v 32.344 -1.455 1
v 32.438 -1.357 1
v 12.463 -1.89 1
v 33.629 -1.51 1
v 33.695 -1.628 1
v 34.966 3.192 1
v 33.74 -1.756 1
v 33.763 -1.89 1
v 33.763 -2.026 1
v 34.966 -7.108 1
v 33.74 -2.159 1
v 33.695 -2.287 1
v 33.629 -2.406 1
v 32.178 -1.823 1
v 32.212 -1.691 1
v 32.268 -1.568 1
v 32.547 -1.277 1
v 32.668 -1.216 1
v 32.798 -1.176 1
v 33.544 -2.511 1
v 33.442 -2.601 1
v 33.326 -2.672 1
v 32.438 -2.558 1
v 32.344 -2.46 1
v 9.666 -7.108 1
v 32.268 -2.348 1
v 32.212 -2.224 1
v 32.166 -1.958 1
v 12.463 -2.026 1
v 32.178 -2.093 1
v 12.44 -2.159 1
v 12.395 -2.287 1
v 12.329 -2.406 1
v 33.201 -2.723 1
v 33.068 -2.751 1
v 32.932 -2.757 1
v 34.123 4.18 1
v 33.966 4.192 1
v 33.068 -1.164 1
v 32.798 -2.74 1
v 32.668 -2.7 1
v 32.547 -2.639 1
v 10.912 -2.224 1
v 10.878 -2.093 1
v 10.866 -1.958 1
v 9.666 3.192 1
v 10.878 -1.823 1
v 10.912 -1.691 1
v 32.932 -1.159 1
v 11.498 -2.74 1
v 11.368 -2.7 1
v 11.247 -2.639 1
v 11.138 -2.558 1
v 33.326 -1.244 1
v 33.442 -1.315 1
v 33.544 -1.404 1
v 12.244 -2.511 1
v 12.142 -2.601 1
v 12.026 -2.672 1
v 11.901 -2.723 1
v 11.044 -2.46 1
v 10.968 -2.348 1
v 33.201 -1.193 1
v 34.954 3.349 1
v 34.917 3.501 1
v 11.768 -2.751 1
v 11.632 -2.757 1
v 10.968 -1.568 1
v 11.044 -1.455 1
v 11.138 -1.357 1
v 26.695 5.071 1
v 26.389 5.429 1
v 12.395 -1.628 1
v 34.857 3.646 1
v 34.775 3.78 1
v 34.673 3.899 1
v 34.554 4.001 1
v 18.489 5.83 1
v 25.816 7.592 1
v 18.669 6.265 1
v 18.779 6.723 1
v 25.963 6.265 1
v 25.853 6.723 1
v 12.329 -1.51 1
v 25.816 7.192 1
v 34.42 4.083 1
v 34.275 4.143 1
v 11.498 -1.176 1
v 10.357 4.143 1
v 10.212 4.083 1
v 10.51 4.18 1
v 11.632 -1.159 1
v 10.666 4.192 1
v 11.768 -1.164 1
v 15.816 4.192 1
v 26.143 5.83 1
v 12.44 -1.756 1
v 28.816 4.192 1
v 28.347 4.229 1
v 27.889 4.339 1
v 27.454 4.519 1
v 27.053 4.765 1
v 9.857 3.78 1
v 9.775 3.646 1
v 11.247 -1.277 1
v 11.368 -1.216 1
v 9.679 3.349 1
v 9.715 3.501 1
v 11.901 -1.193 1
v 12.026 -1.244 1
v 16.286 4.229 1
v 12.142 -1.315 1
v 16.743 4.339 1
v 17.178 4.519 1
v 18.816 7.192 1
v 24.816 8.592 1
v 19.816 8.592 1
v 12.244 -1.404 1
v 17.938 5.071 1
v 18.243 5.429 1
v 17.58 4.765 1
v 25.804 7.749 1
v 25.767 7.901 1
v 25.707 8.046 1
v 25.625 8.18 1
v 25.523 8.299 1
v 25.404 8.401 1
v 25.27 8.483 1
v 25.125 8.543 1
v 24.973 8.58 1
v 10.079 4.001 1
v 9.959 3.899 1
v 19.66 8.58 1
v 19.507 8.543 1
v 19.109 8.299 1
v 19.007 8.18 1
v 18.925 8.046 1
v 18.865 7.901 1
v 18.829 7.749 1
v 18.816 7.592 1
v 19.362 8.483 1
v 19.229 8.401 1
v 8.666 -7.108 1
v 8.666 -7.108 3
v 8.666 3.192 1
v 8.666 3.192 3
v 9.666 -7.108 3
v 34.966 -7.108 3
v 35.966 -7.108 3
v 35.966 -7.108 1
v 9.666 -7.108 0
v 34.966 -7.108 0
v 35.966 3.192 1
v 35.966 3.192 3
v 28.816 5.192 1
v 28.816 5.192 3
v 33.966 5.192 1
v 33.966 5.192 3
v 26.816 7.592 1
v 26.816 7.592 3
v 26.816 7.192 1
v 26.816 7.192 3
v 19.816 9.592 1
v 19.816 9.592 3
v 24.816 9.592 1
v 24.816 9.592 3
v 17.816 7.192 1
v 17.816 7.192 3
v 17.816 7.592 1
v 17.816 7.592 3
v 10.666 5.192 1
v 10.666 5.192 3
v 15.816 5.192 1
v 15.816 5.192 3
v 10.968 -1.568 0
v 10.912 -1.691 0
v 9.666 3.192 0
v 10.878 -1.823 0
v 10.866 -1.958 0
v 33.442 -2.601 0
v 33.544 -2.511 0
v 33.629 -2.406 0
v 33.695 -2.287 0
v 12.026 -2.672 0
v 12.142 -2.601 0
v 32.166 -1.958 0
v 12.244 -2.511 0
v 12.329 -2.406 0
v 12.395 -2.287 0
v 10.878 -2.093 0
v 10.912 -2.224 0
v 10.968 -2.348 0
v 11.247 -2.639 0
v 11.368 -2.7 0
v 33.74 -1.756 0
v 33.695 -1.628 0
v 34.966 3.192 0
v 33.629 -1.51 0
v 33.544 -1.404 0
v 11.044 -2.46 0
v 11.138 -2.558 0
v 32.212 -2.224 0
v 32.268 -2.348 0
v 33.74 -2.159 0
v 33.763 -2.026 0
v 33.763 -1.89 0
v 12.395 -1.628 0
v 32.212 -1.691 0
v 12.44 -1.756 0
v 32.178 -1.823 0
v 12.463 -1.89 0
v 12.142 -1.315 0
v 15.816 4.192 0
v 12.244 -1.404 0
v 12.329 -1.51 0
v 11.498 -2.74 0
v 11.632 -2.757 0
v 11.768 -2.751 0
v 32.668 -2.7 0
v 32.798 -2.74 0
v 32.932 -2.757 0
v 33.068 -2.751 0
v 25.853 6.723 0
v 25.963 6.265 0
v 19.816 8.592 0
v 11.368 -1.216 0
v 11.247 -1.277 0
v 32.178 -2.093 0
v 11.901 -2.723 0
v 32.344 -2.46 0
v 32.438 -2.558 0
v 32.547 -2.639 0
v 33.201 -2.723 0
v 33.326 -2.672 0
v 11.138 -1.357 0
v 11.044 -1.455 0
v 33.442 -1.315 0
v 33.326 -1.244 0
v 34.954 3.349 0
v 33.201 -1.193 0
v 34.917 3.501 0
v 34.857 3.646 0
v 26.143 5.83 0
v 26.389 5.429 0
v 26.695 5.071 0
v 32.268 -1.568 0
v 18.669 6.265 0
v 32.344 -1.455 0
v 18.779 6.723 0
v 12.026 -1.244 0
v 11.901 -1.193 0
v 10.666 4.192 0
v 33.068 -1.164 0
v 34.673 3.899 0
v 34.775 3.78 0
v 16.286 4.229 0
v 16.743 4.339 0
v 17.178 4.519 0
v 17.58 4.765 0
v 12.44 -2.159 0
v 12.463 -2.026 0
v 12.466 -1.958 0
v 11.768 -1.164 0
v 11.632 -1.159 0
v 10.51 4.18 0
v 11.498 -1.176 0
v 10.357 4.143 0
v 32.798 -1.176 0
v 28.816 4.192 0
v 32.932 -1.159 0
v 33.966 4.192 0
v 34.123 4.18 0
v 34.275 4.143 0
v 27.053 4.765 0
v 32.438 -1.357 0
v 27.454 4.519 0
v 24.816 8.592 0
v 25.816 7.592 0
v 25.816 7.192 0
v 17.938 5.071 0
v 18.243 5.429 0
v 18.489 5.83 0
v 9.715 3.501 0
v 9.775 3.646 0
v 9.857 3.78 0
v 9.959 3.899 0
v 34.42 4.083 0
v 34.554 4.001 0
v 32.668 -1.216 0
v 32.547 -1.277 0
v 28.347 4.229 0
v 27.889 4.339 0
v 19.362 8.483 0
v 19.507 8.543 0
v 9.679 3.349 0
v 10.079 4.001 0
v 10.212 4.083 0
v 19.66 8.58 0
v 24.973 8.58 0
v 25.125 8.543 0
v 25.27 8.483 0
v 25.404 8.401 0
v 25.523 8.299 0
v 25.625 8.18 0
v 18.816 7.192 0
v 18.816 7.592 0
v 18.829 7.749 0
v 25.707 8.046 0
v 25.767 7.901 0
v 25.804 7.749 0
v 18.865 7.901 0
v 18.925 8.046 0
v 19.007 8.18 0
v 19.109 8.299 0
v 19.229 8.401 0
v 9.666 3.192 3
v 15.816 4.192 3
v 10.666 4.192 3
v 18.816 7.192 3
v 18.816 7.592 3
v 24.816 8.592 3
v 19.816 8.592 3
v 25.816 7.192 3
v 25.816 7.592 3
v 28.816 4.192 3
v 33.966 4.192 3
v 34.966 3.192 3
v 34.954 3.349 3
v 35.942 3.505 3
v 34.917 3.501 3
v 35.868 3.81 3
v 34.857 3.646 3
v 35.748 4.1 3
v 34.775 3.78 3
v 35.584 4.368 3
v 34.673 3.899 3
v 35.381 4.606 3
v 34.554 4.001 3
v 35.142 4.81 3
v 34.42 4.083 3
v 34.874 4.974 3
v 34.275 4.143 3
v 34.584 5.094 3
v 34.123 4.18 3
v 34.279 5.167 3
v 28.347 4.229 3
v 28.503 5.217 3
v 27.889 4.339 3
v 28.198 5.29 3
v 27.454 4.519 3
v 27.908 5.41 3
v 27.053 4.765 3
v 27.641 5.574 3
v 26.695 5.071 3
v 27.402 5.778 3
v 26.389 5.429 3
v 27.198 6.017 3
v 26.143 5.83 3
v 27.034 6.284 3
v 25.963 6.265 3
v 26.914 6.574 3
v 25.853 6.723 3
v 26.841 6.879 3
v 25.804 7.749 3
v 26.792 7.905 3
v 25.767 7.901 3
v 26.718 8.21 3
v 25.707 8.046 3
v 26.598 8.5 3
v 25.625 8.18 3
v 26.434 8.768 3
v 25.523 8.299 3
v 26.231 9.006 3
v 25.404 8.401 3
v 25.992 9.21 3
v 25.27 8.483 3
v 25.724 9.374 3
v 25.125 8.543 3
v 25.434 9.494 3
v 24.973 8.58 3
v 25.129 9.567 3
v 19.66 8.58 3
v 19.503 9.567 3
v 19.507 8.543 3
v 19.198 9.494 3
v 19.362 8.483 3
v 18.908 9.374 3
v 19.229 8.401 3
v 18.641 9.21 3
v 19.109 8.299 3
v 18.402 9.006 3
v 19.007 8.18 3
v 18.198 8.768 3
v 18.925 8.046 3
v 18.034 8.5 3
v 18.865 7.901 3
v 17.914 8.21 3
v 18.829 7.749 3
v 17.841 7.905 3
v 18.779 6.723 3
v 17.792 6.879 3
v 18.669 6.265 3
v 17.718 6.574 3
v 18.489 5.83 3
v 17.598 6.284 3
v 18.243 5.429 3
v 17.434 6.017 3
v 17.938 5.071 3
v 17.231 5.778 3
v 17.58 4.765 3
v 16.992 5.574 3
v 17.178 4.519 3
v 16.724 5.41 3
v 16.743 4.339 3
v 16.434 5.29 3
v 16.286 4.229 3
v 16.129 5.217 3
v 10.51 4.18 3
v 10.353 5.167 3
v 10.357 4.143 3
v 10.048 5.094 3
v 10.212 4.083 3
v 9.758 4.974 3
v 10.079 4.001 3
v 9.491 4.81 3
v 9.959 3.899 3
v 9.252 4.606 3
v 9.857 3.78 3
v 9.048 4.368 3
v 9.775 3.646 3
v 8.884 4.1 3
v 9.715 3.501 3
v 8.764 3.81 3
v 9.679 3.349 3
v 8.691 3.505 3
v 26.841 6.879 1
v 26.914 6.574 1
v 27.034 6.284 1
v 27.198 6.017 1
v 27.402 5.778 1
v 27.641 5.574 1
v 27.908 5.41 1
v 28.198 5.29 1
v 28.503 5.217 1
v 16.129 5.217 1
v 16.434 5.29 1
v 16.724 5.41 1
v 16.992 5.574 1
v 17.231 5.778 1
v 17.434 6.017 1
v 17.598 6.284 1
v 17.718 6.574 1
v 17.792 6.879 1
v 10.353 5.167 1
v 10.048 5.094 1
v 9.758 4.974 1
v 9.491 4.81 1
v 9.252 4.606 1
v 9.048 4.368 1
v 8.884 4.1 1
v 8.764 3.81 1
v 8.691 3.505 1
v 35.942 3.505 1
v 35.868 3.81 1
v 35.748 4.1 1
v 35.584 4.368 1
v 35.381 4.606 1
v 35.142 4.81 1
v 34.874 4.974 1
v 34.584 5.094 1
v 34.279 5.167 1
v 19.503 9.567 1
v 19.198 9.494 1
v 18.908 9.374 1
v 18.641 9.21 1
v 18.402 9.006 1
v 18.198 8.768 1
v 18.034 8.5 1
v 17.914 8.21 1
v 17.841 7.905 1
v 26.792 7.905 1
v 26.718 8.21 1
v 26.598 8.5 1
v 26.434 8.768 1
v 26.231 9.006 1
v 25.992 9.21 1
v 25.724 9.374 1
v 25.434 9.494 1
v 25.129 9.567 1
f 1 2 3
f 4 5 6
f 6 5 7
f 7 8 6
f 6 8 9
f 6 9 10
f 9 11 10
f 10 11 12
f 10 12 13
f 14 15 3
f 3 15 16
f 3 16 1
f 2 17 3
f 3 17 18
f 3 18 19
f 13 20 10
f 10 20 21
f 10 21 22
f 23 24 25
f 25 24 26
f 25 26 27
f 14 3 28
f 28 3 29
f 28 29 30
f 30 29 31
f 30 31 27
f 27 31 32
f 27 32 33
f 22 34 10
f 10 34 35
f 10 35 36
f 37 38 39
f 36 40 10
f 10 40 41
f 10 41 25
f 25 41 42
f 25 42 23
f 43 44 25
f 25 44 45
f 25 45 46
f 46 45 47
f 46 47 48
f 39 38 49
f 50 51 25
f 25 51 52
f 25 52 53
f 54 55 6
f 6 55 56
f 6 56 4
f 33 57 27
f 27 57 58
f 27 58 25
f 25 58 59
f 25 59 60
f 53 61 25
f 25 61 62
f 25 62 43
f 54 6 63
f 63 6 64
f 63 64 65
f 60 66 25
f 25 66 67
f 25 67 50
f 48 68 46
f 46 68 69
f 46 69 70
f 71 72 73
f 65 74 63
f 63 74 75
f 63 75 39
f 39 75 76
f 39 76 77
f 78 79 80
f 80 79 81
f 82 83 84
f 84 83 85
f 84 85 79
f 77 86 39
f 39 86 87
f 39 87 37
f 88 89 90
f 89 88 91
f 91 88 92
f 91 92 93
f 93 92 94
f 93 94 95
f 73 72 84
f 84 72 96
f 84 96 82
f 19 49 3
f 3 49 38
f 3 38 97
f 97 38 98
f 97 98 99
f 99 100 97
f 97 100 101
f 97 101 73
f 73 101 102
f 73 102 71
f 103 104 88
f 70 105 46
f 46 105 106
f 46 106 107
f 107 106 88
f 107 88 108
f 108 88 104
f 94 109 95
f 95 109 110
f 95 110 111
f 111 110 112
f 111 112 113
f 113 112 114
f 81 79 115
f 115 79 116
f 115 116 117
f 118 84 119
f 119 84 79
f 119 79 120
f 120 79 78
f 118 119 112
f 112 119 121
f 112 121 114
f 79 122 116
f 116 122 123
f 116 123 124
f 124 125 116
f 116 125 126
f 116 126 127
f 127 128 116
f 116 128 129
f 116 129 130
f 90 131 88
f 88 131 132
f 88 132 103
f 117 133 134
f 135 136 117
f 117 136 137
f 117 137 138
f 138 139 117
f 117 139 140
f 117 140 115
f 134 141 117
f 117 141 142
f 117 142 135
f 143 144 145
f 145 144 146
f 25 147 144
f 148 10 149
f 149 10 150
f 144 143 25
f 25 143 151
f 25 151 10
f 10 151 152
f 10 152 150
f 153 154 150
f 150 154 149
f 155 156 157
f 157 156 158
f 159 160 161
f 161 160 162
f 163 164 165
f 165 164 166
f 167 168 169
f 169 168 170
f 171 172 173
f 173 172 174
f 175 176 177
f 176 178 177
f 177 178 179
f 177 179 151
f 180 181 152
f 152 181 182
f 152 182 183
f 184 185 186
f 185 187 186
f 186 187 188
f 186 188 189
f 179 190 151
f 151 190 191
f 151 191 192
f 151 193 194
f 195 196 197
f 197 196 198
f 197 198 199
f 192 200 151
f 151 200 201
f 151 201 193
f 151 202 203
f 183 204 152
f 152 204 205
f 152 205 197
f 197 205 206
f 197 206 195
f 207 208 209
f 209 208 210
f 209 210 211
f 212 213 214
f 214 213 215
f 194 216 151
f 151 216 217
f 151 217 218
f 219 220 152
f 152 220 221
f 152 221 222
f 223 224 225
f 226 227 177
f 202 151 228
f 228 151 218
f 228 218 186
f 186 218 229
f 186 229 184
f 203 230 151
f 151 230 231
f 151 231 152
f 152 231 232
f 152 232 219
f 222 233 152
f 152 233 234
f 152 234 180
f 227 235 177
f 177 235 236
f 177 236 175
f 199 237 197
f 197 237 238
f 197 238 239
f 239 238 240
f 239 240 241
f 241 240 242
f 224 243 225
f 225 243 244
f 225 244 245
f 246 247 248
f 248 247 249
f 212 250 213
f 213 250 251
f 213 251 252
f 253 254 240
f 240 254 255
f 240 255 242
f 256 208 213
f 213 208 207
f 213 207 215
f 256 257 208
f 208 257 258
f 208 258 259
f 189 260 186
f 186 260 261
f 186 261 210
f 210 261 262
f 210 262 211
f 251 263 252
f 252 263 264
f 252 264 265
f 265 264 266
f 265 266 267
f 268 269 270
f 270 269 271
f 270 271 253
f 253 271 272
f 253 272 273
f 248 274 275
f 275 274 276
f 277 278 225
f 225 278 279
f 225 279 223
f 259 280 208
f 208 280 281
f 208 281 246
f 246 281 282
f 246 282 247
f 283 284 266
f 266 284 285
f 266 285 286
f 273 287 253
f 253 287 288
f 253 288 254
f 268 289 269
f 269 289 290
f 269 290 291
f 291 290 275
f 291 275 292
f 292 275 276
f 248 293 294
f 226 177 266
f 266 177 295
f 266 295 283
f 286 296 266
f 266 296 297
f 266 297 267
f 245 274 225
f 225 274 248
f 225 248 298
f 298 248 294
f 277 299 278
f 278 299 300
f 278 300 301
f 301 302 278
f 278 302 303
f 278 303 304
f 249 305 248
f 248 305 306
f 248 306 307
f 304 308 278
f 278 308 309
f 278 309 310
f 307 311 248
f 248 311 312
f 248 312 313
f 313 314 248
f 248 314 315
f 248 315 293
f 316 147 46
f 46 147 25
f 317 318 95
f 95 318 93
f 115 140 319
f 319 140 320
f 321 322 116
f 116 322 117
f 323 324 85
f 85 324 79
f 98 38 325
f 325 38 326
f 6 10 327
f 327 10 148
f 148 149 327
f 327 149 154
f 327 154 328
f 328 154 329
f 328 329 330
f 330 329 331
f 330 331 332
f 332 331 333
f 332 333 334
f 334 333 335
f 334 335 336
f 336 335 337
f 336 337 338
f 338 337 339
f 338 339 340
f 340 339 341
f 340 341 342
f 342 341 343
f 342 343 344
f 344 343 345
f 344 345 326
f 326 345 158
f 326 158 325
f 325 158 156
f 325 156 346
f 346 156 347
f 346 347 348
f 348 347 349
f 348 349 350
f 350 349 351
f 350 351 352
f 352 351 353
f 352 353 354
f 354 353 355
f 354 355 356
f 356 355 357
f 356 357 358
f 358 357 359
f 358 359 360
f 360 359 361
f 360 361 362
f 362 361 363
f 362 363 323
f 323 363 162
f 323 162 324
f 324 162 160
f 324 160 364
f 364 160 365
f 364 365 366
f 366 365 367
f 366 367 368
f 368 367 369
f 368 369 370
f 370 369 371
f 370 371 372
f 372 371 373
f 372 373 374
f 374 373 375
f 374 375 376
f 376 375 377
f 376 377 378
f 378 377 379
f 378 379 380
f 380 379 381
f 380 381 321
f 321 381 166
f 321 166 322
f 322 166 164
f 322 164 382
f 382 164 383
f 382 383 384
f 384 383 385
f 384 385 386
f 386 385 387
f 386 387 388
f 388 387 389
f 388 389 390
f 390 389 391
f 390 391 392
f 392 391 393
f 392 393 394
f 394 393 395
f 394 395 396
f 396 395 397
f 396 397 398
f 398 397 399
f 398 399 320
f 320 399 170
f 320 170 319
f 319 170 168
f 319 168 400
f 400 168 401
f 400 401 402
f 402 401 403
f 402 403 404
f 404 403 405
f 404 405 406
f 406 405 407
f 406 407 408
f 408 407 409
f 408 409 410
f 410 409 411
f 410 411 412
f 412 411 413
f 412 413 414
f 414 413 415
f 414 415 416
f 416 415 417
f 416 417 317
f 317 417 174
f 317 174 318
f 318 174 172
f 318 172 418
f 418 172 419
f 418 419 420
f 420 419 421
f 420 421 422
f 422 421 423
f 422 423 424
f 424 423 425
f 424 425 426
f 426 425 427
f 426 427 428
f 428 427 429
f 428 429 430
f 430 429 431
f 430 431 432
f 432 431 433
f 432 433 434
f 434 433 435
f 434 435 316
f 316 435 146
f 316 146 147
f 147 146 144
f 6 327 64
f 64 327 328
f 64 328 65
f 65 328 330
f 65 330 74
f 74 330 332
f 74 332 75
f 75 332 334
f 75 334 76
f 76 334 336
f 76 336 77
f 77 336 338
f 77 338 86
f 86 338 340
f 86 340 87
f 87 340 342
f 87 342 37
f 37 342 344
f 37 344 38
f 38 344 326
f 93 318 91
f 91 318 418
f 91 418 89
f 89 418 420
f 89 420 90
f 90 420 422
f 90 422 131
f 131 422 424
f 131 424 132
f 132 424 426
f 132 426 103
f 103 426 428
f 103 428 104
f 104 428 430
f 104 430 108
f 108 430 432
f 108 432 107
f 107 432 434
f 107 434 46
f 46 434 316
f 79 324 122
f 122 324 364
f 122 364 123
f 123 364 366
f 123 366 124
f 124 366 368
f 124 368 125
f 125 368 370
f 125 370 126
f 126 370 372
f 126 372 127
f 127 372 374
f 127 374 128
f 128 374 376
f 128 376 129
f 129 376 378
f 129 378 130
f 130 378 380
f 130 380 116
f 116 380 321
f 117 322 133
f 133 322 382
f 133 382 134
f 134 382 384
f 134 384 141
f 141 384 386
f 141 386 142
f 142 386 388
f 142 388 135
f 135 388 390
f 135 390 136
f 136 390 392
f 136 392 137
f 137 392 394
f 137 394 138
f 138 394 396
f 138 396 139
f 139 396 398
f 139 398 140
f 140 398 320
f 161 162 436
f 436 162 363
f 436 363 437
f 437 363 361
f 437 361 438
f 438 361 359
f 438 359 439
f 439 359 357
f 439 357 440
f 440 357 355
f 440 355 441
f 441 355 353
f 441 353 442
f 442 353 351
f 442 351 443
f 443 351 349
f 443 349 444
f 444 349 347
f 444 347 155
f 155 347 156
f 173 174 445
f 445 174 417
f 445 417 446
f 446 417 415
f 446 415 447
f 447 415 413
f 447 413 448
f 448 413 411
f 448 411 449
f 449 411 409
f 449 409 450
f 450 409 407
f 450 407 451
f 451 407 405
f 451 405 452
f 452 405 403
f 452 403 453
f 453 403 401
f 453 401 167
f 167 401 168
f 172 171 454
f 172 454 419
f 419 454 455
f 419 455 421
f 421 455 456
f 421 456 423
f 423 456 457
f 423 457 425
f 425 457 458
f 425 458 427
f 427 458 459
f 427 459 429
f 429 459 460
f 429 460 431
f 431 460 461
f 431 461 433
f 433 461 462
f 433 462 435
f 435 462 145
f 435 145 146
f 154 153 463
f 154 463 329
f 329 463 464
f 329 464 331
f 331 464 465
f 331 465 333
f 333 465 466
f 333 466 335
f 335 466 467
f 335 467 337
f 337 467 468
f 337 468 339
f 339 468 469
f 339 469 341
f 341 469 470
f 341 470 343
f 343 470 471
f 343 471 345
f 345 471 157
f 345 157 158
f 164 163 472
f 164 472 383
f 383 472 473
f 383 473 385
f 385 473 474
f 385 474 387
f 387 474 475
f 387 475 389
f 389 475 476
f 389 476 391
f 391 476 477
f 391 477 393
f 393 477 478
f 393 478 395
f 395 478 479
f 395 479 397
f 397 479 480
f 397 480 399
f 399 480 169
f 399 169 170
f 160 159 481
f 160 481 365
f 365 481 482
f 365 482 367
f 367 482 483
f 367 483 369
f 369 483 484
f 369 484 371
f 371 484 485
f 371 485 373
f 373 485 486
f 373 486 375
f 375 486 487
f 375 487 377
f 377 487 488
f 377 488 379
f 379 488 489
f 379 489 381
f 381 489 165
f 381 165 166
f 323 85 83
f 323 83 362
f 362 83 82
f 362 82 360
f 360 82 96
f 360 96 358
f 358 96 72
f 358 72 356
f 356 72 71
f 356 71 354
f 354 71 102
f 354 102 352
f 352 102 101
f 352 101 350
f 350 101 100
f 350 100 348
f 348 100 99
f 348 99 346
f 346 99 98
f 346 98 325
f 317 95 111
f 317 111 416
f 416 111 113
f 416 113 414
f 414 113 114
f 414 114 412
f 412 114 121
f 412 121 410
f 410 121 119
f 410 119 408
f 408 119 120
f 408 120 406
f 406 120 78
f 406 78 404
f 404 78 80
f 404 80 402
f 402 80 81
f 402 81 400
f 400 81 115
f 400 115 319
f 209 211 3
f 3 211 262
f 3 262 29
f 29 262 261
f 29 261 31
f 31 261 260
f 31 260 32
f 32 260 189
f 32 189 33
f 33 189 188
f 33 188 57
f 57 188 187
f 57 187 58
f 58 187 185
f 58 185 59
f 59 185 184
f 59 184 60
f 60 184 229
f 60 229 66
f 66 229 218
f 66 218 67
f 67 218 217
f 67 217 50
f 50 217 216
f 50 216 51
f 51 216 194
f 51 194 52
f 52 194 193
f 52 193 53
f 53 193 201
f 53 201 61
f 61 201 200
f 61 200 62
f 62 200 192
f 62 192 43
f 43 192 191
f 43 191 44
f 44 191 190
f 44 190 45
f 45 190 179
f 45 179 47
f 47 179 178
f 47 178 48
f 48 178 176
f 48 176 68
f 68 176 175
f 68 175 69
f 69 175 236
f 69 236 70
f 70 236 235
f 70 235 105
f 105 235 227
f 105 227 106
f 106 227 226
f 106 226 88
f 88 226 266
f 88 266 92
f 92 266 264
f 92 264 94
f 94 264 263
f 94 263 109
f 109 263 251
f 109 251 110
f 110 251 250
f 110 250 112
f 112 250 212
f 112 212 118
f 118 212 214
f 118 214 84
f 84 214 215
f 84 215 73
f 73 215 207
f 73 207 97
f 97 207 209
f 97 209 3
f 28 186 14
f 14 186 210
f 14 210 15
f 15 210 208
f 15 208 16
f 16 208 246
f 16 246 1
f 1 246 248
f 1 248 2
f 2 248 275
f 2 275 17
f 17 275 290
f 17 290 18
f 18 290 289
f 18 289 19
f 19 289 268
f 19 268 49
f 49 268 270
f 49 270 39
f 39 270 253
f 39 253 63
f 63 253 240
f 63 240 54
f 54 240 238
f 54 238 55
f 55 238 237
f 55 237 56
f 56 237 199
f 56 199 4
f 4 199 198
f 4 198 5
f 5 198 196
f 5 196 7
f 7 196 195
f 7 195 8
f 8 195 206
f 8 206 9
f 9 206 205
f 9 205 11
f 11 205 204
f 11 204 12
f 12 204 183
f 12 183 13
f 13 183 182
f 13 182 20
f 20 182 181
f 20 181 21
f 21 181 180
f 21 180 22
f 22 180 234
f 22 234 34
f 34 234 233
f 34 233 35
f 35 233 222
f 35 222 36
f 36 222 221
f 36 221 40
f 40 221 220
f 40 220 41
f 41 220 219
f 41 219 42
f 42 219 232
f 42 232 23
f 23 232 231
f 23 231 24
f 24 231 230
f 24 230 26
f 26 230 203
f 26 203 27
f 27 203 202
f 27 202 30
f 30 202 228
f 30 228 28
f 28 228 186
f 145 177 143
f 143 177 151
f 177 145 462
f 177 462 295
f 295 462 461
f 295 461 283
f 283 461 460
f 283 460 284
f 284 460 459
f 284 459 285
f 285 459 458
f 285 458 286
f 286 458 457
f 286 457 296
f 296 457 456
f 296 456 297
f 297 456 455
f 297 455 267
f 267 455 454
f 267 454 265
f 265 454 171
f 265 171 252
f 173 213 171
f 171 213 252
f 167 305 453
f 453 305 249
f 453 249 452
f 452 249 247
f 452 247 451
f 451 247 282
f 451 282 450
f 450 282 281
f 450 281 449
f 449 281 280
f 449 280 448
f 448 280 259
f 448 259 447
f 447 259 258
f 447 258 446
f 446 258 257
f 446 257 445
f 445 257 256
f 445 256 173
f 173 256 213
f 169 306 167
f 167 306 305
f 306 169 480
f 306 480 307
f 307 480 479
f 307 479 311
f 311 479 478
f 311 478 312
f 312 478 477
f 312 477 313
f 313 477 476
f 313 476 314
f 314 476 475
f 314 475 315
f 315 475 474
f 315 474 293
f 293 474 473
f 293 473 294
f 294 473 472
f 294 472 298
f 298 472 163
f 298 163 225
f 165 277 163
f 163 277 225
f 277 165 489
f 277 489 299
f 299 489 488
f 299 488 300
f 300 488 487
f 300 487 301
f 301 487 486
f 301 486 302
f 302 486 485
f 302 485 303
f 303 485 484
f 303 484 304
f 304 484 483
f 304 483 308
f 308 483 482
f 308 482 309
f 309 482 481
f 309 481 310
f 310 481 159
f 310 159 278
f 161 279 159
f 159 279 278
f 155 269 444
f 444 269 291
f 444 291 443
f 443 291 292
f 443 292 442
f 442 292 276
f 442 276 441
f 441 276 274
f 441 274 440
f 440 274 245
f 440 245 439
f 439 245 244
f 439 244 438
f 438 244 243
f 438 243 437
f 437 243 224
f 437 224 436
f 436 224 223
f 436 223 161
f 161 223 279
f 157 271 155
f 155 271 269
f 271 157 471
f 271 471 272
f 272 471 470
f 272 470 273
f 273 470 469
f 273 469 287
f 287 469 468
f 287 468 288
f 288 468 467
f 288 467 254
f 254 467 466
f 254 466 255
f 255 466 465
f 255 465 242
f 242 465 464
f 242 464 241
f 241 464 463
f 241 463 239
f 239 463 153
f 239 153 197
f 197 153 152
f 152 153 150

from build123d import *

# Parameters (mm, degrees)
BOSS_EXTRUDE1_DEPTH = 1
BOSS_EXTRUDE2_DEPTH = 2
FILLET1_R           = 1
FILLET2_R           = 2
FILLET3_R           = 3
SKETCH3_R           = 0.8
CUT_EXTRUDE1_DEPTH  = 38.344114593
CHAMFER1_SIZE       = 1


with BuildPart() as part:
    # Sketch1 → Boss-Extrude1 (new body)
    with BuildSketch(Plane.XY):
        Polygon((26.816301055, 5.1920844), (35.966301055, 5.1920844), (35.966301055, -7.1079156), (8.666301055, -7.1079156), (8.666301055, 5.1920844), (17.816301055, 5.1920844), (17.816301055, 9.5920844), (26.816301055, 9.5920844), align=None)
    extrude(amount=BOSS_EXTRUDE1_DEPTH)

    # Sketch2 → Boss-Extrude2 (add)
    with BuildSketch(Plane.XY.offset(1)):
        Polygon((34.966301055, -7.1079156), (34.966301055, 4.1920844), (25.816301055, 4.1920844), (25.816301055, 8.5920844), (18.816301055, 8.5920844), (18.816301055, 4.1920844), (9.666301055, 4.1920844), (9.666301055, -7.1079156), (8.666301055, -7.1079156), (8.666301055, 5.1920844), (17.816301055, 5.1920844), (17.816301055, 9.5920844), (26.816301055, 9.5920844), (26.816301055, 5.1920844), (35.966301055, 5.1920844), (35.966301055, -7.1079156), align=None)
    extrude(amount=BOSS_EXTRUDE2_DEPTH)

    # Fillet1
    fillet1_edges = [part.edges().sort_by_distance(p)[0] for p in [
        (9.666301055, 4.1920844, 2),
        (18.816301055, 8.5920844, 2),
        (25.816301055, 8.5920844, 2),
        (34.966301055, 4.1920844, 2),
    ]]
    fillet(fillet1_edges, radius=FILLET1_R)

    # Fillet2
    fillet2_edges = [part.edges().sort_by_distance(p)[0] for p in [
        (8.666301055, 5.1920844, 1.5),
        (17.816301055, 5.1920844, 1.5),
        (17.816301055, 9.5920844, 1.5),
        (26.816301055, 9.5920844, 1.5),
        (26.816301055, 5.1920844, 1.5),
        (35.966301055, 5.1920844, 1.5),
    ]]
    fillet(fillet2_edges, radius=FILLET2_R)

    # Fillet3
    fillet3_edges = [part.edges().sort_by_distance(p)[0] for p in [
        (18.816301055, 4.1920844, 2),
        (25.816301055, 4.1920844, 2),
    ]]
    fillet(fillet3_edges, radius=FILLET3_R)

    # Sketch3 → Cut-Extrude1 (cut, through all)
    with BuildSketch(Plane(origin=(0, 0, 0), x_dir=(-1, 0, 0), z_dir=(0, 0, -1))):
        with Locations((-32.966301055, -1.9579156)):
            Circle(SKETCH3_R)
        with Locations((-11.666301055, -1.9579156)):
            Circle(SKETCH3_R)
    extrude(amount=-CUT_EXTRUDE1_DEPTH, mode=Mode.SUBTRACT)

    # Chamfer1
    chamfer1_edges = [part.edges().sort_by_distance(p)[0] for p in [
        (13.241301055, 5.1920844, 0),
        (17.816301055, 7.3920844, 0),
        (8.666301055, -1.9579156, 0),
        (35.966301055, -1.9579156, 0),
        (22.316301055, 9.5920844, 0),
        (26.230514617, 9.006297963, 0),
        (18.402087492, 9.006297963, 0),
        (35.380514617, 4.606297963, 0),
        (9.252087492, 4.606297963, 0),
        (27.402087492, 5.777870838, 0),
        (17.230514617, 5.777870838, 0),
        (26.816301055, 7.3920844, 0),
        (31.391301055, 5.1920844, 0),
    ]]
    chamfer(chamfer1_edges, length=CHAMFER1_SIZE)


solid = part.part
